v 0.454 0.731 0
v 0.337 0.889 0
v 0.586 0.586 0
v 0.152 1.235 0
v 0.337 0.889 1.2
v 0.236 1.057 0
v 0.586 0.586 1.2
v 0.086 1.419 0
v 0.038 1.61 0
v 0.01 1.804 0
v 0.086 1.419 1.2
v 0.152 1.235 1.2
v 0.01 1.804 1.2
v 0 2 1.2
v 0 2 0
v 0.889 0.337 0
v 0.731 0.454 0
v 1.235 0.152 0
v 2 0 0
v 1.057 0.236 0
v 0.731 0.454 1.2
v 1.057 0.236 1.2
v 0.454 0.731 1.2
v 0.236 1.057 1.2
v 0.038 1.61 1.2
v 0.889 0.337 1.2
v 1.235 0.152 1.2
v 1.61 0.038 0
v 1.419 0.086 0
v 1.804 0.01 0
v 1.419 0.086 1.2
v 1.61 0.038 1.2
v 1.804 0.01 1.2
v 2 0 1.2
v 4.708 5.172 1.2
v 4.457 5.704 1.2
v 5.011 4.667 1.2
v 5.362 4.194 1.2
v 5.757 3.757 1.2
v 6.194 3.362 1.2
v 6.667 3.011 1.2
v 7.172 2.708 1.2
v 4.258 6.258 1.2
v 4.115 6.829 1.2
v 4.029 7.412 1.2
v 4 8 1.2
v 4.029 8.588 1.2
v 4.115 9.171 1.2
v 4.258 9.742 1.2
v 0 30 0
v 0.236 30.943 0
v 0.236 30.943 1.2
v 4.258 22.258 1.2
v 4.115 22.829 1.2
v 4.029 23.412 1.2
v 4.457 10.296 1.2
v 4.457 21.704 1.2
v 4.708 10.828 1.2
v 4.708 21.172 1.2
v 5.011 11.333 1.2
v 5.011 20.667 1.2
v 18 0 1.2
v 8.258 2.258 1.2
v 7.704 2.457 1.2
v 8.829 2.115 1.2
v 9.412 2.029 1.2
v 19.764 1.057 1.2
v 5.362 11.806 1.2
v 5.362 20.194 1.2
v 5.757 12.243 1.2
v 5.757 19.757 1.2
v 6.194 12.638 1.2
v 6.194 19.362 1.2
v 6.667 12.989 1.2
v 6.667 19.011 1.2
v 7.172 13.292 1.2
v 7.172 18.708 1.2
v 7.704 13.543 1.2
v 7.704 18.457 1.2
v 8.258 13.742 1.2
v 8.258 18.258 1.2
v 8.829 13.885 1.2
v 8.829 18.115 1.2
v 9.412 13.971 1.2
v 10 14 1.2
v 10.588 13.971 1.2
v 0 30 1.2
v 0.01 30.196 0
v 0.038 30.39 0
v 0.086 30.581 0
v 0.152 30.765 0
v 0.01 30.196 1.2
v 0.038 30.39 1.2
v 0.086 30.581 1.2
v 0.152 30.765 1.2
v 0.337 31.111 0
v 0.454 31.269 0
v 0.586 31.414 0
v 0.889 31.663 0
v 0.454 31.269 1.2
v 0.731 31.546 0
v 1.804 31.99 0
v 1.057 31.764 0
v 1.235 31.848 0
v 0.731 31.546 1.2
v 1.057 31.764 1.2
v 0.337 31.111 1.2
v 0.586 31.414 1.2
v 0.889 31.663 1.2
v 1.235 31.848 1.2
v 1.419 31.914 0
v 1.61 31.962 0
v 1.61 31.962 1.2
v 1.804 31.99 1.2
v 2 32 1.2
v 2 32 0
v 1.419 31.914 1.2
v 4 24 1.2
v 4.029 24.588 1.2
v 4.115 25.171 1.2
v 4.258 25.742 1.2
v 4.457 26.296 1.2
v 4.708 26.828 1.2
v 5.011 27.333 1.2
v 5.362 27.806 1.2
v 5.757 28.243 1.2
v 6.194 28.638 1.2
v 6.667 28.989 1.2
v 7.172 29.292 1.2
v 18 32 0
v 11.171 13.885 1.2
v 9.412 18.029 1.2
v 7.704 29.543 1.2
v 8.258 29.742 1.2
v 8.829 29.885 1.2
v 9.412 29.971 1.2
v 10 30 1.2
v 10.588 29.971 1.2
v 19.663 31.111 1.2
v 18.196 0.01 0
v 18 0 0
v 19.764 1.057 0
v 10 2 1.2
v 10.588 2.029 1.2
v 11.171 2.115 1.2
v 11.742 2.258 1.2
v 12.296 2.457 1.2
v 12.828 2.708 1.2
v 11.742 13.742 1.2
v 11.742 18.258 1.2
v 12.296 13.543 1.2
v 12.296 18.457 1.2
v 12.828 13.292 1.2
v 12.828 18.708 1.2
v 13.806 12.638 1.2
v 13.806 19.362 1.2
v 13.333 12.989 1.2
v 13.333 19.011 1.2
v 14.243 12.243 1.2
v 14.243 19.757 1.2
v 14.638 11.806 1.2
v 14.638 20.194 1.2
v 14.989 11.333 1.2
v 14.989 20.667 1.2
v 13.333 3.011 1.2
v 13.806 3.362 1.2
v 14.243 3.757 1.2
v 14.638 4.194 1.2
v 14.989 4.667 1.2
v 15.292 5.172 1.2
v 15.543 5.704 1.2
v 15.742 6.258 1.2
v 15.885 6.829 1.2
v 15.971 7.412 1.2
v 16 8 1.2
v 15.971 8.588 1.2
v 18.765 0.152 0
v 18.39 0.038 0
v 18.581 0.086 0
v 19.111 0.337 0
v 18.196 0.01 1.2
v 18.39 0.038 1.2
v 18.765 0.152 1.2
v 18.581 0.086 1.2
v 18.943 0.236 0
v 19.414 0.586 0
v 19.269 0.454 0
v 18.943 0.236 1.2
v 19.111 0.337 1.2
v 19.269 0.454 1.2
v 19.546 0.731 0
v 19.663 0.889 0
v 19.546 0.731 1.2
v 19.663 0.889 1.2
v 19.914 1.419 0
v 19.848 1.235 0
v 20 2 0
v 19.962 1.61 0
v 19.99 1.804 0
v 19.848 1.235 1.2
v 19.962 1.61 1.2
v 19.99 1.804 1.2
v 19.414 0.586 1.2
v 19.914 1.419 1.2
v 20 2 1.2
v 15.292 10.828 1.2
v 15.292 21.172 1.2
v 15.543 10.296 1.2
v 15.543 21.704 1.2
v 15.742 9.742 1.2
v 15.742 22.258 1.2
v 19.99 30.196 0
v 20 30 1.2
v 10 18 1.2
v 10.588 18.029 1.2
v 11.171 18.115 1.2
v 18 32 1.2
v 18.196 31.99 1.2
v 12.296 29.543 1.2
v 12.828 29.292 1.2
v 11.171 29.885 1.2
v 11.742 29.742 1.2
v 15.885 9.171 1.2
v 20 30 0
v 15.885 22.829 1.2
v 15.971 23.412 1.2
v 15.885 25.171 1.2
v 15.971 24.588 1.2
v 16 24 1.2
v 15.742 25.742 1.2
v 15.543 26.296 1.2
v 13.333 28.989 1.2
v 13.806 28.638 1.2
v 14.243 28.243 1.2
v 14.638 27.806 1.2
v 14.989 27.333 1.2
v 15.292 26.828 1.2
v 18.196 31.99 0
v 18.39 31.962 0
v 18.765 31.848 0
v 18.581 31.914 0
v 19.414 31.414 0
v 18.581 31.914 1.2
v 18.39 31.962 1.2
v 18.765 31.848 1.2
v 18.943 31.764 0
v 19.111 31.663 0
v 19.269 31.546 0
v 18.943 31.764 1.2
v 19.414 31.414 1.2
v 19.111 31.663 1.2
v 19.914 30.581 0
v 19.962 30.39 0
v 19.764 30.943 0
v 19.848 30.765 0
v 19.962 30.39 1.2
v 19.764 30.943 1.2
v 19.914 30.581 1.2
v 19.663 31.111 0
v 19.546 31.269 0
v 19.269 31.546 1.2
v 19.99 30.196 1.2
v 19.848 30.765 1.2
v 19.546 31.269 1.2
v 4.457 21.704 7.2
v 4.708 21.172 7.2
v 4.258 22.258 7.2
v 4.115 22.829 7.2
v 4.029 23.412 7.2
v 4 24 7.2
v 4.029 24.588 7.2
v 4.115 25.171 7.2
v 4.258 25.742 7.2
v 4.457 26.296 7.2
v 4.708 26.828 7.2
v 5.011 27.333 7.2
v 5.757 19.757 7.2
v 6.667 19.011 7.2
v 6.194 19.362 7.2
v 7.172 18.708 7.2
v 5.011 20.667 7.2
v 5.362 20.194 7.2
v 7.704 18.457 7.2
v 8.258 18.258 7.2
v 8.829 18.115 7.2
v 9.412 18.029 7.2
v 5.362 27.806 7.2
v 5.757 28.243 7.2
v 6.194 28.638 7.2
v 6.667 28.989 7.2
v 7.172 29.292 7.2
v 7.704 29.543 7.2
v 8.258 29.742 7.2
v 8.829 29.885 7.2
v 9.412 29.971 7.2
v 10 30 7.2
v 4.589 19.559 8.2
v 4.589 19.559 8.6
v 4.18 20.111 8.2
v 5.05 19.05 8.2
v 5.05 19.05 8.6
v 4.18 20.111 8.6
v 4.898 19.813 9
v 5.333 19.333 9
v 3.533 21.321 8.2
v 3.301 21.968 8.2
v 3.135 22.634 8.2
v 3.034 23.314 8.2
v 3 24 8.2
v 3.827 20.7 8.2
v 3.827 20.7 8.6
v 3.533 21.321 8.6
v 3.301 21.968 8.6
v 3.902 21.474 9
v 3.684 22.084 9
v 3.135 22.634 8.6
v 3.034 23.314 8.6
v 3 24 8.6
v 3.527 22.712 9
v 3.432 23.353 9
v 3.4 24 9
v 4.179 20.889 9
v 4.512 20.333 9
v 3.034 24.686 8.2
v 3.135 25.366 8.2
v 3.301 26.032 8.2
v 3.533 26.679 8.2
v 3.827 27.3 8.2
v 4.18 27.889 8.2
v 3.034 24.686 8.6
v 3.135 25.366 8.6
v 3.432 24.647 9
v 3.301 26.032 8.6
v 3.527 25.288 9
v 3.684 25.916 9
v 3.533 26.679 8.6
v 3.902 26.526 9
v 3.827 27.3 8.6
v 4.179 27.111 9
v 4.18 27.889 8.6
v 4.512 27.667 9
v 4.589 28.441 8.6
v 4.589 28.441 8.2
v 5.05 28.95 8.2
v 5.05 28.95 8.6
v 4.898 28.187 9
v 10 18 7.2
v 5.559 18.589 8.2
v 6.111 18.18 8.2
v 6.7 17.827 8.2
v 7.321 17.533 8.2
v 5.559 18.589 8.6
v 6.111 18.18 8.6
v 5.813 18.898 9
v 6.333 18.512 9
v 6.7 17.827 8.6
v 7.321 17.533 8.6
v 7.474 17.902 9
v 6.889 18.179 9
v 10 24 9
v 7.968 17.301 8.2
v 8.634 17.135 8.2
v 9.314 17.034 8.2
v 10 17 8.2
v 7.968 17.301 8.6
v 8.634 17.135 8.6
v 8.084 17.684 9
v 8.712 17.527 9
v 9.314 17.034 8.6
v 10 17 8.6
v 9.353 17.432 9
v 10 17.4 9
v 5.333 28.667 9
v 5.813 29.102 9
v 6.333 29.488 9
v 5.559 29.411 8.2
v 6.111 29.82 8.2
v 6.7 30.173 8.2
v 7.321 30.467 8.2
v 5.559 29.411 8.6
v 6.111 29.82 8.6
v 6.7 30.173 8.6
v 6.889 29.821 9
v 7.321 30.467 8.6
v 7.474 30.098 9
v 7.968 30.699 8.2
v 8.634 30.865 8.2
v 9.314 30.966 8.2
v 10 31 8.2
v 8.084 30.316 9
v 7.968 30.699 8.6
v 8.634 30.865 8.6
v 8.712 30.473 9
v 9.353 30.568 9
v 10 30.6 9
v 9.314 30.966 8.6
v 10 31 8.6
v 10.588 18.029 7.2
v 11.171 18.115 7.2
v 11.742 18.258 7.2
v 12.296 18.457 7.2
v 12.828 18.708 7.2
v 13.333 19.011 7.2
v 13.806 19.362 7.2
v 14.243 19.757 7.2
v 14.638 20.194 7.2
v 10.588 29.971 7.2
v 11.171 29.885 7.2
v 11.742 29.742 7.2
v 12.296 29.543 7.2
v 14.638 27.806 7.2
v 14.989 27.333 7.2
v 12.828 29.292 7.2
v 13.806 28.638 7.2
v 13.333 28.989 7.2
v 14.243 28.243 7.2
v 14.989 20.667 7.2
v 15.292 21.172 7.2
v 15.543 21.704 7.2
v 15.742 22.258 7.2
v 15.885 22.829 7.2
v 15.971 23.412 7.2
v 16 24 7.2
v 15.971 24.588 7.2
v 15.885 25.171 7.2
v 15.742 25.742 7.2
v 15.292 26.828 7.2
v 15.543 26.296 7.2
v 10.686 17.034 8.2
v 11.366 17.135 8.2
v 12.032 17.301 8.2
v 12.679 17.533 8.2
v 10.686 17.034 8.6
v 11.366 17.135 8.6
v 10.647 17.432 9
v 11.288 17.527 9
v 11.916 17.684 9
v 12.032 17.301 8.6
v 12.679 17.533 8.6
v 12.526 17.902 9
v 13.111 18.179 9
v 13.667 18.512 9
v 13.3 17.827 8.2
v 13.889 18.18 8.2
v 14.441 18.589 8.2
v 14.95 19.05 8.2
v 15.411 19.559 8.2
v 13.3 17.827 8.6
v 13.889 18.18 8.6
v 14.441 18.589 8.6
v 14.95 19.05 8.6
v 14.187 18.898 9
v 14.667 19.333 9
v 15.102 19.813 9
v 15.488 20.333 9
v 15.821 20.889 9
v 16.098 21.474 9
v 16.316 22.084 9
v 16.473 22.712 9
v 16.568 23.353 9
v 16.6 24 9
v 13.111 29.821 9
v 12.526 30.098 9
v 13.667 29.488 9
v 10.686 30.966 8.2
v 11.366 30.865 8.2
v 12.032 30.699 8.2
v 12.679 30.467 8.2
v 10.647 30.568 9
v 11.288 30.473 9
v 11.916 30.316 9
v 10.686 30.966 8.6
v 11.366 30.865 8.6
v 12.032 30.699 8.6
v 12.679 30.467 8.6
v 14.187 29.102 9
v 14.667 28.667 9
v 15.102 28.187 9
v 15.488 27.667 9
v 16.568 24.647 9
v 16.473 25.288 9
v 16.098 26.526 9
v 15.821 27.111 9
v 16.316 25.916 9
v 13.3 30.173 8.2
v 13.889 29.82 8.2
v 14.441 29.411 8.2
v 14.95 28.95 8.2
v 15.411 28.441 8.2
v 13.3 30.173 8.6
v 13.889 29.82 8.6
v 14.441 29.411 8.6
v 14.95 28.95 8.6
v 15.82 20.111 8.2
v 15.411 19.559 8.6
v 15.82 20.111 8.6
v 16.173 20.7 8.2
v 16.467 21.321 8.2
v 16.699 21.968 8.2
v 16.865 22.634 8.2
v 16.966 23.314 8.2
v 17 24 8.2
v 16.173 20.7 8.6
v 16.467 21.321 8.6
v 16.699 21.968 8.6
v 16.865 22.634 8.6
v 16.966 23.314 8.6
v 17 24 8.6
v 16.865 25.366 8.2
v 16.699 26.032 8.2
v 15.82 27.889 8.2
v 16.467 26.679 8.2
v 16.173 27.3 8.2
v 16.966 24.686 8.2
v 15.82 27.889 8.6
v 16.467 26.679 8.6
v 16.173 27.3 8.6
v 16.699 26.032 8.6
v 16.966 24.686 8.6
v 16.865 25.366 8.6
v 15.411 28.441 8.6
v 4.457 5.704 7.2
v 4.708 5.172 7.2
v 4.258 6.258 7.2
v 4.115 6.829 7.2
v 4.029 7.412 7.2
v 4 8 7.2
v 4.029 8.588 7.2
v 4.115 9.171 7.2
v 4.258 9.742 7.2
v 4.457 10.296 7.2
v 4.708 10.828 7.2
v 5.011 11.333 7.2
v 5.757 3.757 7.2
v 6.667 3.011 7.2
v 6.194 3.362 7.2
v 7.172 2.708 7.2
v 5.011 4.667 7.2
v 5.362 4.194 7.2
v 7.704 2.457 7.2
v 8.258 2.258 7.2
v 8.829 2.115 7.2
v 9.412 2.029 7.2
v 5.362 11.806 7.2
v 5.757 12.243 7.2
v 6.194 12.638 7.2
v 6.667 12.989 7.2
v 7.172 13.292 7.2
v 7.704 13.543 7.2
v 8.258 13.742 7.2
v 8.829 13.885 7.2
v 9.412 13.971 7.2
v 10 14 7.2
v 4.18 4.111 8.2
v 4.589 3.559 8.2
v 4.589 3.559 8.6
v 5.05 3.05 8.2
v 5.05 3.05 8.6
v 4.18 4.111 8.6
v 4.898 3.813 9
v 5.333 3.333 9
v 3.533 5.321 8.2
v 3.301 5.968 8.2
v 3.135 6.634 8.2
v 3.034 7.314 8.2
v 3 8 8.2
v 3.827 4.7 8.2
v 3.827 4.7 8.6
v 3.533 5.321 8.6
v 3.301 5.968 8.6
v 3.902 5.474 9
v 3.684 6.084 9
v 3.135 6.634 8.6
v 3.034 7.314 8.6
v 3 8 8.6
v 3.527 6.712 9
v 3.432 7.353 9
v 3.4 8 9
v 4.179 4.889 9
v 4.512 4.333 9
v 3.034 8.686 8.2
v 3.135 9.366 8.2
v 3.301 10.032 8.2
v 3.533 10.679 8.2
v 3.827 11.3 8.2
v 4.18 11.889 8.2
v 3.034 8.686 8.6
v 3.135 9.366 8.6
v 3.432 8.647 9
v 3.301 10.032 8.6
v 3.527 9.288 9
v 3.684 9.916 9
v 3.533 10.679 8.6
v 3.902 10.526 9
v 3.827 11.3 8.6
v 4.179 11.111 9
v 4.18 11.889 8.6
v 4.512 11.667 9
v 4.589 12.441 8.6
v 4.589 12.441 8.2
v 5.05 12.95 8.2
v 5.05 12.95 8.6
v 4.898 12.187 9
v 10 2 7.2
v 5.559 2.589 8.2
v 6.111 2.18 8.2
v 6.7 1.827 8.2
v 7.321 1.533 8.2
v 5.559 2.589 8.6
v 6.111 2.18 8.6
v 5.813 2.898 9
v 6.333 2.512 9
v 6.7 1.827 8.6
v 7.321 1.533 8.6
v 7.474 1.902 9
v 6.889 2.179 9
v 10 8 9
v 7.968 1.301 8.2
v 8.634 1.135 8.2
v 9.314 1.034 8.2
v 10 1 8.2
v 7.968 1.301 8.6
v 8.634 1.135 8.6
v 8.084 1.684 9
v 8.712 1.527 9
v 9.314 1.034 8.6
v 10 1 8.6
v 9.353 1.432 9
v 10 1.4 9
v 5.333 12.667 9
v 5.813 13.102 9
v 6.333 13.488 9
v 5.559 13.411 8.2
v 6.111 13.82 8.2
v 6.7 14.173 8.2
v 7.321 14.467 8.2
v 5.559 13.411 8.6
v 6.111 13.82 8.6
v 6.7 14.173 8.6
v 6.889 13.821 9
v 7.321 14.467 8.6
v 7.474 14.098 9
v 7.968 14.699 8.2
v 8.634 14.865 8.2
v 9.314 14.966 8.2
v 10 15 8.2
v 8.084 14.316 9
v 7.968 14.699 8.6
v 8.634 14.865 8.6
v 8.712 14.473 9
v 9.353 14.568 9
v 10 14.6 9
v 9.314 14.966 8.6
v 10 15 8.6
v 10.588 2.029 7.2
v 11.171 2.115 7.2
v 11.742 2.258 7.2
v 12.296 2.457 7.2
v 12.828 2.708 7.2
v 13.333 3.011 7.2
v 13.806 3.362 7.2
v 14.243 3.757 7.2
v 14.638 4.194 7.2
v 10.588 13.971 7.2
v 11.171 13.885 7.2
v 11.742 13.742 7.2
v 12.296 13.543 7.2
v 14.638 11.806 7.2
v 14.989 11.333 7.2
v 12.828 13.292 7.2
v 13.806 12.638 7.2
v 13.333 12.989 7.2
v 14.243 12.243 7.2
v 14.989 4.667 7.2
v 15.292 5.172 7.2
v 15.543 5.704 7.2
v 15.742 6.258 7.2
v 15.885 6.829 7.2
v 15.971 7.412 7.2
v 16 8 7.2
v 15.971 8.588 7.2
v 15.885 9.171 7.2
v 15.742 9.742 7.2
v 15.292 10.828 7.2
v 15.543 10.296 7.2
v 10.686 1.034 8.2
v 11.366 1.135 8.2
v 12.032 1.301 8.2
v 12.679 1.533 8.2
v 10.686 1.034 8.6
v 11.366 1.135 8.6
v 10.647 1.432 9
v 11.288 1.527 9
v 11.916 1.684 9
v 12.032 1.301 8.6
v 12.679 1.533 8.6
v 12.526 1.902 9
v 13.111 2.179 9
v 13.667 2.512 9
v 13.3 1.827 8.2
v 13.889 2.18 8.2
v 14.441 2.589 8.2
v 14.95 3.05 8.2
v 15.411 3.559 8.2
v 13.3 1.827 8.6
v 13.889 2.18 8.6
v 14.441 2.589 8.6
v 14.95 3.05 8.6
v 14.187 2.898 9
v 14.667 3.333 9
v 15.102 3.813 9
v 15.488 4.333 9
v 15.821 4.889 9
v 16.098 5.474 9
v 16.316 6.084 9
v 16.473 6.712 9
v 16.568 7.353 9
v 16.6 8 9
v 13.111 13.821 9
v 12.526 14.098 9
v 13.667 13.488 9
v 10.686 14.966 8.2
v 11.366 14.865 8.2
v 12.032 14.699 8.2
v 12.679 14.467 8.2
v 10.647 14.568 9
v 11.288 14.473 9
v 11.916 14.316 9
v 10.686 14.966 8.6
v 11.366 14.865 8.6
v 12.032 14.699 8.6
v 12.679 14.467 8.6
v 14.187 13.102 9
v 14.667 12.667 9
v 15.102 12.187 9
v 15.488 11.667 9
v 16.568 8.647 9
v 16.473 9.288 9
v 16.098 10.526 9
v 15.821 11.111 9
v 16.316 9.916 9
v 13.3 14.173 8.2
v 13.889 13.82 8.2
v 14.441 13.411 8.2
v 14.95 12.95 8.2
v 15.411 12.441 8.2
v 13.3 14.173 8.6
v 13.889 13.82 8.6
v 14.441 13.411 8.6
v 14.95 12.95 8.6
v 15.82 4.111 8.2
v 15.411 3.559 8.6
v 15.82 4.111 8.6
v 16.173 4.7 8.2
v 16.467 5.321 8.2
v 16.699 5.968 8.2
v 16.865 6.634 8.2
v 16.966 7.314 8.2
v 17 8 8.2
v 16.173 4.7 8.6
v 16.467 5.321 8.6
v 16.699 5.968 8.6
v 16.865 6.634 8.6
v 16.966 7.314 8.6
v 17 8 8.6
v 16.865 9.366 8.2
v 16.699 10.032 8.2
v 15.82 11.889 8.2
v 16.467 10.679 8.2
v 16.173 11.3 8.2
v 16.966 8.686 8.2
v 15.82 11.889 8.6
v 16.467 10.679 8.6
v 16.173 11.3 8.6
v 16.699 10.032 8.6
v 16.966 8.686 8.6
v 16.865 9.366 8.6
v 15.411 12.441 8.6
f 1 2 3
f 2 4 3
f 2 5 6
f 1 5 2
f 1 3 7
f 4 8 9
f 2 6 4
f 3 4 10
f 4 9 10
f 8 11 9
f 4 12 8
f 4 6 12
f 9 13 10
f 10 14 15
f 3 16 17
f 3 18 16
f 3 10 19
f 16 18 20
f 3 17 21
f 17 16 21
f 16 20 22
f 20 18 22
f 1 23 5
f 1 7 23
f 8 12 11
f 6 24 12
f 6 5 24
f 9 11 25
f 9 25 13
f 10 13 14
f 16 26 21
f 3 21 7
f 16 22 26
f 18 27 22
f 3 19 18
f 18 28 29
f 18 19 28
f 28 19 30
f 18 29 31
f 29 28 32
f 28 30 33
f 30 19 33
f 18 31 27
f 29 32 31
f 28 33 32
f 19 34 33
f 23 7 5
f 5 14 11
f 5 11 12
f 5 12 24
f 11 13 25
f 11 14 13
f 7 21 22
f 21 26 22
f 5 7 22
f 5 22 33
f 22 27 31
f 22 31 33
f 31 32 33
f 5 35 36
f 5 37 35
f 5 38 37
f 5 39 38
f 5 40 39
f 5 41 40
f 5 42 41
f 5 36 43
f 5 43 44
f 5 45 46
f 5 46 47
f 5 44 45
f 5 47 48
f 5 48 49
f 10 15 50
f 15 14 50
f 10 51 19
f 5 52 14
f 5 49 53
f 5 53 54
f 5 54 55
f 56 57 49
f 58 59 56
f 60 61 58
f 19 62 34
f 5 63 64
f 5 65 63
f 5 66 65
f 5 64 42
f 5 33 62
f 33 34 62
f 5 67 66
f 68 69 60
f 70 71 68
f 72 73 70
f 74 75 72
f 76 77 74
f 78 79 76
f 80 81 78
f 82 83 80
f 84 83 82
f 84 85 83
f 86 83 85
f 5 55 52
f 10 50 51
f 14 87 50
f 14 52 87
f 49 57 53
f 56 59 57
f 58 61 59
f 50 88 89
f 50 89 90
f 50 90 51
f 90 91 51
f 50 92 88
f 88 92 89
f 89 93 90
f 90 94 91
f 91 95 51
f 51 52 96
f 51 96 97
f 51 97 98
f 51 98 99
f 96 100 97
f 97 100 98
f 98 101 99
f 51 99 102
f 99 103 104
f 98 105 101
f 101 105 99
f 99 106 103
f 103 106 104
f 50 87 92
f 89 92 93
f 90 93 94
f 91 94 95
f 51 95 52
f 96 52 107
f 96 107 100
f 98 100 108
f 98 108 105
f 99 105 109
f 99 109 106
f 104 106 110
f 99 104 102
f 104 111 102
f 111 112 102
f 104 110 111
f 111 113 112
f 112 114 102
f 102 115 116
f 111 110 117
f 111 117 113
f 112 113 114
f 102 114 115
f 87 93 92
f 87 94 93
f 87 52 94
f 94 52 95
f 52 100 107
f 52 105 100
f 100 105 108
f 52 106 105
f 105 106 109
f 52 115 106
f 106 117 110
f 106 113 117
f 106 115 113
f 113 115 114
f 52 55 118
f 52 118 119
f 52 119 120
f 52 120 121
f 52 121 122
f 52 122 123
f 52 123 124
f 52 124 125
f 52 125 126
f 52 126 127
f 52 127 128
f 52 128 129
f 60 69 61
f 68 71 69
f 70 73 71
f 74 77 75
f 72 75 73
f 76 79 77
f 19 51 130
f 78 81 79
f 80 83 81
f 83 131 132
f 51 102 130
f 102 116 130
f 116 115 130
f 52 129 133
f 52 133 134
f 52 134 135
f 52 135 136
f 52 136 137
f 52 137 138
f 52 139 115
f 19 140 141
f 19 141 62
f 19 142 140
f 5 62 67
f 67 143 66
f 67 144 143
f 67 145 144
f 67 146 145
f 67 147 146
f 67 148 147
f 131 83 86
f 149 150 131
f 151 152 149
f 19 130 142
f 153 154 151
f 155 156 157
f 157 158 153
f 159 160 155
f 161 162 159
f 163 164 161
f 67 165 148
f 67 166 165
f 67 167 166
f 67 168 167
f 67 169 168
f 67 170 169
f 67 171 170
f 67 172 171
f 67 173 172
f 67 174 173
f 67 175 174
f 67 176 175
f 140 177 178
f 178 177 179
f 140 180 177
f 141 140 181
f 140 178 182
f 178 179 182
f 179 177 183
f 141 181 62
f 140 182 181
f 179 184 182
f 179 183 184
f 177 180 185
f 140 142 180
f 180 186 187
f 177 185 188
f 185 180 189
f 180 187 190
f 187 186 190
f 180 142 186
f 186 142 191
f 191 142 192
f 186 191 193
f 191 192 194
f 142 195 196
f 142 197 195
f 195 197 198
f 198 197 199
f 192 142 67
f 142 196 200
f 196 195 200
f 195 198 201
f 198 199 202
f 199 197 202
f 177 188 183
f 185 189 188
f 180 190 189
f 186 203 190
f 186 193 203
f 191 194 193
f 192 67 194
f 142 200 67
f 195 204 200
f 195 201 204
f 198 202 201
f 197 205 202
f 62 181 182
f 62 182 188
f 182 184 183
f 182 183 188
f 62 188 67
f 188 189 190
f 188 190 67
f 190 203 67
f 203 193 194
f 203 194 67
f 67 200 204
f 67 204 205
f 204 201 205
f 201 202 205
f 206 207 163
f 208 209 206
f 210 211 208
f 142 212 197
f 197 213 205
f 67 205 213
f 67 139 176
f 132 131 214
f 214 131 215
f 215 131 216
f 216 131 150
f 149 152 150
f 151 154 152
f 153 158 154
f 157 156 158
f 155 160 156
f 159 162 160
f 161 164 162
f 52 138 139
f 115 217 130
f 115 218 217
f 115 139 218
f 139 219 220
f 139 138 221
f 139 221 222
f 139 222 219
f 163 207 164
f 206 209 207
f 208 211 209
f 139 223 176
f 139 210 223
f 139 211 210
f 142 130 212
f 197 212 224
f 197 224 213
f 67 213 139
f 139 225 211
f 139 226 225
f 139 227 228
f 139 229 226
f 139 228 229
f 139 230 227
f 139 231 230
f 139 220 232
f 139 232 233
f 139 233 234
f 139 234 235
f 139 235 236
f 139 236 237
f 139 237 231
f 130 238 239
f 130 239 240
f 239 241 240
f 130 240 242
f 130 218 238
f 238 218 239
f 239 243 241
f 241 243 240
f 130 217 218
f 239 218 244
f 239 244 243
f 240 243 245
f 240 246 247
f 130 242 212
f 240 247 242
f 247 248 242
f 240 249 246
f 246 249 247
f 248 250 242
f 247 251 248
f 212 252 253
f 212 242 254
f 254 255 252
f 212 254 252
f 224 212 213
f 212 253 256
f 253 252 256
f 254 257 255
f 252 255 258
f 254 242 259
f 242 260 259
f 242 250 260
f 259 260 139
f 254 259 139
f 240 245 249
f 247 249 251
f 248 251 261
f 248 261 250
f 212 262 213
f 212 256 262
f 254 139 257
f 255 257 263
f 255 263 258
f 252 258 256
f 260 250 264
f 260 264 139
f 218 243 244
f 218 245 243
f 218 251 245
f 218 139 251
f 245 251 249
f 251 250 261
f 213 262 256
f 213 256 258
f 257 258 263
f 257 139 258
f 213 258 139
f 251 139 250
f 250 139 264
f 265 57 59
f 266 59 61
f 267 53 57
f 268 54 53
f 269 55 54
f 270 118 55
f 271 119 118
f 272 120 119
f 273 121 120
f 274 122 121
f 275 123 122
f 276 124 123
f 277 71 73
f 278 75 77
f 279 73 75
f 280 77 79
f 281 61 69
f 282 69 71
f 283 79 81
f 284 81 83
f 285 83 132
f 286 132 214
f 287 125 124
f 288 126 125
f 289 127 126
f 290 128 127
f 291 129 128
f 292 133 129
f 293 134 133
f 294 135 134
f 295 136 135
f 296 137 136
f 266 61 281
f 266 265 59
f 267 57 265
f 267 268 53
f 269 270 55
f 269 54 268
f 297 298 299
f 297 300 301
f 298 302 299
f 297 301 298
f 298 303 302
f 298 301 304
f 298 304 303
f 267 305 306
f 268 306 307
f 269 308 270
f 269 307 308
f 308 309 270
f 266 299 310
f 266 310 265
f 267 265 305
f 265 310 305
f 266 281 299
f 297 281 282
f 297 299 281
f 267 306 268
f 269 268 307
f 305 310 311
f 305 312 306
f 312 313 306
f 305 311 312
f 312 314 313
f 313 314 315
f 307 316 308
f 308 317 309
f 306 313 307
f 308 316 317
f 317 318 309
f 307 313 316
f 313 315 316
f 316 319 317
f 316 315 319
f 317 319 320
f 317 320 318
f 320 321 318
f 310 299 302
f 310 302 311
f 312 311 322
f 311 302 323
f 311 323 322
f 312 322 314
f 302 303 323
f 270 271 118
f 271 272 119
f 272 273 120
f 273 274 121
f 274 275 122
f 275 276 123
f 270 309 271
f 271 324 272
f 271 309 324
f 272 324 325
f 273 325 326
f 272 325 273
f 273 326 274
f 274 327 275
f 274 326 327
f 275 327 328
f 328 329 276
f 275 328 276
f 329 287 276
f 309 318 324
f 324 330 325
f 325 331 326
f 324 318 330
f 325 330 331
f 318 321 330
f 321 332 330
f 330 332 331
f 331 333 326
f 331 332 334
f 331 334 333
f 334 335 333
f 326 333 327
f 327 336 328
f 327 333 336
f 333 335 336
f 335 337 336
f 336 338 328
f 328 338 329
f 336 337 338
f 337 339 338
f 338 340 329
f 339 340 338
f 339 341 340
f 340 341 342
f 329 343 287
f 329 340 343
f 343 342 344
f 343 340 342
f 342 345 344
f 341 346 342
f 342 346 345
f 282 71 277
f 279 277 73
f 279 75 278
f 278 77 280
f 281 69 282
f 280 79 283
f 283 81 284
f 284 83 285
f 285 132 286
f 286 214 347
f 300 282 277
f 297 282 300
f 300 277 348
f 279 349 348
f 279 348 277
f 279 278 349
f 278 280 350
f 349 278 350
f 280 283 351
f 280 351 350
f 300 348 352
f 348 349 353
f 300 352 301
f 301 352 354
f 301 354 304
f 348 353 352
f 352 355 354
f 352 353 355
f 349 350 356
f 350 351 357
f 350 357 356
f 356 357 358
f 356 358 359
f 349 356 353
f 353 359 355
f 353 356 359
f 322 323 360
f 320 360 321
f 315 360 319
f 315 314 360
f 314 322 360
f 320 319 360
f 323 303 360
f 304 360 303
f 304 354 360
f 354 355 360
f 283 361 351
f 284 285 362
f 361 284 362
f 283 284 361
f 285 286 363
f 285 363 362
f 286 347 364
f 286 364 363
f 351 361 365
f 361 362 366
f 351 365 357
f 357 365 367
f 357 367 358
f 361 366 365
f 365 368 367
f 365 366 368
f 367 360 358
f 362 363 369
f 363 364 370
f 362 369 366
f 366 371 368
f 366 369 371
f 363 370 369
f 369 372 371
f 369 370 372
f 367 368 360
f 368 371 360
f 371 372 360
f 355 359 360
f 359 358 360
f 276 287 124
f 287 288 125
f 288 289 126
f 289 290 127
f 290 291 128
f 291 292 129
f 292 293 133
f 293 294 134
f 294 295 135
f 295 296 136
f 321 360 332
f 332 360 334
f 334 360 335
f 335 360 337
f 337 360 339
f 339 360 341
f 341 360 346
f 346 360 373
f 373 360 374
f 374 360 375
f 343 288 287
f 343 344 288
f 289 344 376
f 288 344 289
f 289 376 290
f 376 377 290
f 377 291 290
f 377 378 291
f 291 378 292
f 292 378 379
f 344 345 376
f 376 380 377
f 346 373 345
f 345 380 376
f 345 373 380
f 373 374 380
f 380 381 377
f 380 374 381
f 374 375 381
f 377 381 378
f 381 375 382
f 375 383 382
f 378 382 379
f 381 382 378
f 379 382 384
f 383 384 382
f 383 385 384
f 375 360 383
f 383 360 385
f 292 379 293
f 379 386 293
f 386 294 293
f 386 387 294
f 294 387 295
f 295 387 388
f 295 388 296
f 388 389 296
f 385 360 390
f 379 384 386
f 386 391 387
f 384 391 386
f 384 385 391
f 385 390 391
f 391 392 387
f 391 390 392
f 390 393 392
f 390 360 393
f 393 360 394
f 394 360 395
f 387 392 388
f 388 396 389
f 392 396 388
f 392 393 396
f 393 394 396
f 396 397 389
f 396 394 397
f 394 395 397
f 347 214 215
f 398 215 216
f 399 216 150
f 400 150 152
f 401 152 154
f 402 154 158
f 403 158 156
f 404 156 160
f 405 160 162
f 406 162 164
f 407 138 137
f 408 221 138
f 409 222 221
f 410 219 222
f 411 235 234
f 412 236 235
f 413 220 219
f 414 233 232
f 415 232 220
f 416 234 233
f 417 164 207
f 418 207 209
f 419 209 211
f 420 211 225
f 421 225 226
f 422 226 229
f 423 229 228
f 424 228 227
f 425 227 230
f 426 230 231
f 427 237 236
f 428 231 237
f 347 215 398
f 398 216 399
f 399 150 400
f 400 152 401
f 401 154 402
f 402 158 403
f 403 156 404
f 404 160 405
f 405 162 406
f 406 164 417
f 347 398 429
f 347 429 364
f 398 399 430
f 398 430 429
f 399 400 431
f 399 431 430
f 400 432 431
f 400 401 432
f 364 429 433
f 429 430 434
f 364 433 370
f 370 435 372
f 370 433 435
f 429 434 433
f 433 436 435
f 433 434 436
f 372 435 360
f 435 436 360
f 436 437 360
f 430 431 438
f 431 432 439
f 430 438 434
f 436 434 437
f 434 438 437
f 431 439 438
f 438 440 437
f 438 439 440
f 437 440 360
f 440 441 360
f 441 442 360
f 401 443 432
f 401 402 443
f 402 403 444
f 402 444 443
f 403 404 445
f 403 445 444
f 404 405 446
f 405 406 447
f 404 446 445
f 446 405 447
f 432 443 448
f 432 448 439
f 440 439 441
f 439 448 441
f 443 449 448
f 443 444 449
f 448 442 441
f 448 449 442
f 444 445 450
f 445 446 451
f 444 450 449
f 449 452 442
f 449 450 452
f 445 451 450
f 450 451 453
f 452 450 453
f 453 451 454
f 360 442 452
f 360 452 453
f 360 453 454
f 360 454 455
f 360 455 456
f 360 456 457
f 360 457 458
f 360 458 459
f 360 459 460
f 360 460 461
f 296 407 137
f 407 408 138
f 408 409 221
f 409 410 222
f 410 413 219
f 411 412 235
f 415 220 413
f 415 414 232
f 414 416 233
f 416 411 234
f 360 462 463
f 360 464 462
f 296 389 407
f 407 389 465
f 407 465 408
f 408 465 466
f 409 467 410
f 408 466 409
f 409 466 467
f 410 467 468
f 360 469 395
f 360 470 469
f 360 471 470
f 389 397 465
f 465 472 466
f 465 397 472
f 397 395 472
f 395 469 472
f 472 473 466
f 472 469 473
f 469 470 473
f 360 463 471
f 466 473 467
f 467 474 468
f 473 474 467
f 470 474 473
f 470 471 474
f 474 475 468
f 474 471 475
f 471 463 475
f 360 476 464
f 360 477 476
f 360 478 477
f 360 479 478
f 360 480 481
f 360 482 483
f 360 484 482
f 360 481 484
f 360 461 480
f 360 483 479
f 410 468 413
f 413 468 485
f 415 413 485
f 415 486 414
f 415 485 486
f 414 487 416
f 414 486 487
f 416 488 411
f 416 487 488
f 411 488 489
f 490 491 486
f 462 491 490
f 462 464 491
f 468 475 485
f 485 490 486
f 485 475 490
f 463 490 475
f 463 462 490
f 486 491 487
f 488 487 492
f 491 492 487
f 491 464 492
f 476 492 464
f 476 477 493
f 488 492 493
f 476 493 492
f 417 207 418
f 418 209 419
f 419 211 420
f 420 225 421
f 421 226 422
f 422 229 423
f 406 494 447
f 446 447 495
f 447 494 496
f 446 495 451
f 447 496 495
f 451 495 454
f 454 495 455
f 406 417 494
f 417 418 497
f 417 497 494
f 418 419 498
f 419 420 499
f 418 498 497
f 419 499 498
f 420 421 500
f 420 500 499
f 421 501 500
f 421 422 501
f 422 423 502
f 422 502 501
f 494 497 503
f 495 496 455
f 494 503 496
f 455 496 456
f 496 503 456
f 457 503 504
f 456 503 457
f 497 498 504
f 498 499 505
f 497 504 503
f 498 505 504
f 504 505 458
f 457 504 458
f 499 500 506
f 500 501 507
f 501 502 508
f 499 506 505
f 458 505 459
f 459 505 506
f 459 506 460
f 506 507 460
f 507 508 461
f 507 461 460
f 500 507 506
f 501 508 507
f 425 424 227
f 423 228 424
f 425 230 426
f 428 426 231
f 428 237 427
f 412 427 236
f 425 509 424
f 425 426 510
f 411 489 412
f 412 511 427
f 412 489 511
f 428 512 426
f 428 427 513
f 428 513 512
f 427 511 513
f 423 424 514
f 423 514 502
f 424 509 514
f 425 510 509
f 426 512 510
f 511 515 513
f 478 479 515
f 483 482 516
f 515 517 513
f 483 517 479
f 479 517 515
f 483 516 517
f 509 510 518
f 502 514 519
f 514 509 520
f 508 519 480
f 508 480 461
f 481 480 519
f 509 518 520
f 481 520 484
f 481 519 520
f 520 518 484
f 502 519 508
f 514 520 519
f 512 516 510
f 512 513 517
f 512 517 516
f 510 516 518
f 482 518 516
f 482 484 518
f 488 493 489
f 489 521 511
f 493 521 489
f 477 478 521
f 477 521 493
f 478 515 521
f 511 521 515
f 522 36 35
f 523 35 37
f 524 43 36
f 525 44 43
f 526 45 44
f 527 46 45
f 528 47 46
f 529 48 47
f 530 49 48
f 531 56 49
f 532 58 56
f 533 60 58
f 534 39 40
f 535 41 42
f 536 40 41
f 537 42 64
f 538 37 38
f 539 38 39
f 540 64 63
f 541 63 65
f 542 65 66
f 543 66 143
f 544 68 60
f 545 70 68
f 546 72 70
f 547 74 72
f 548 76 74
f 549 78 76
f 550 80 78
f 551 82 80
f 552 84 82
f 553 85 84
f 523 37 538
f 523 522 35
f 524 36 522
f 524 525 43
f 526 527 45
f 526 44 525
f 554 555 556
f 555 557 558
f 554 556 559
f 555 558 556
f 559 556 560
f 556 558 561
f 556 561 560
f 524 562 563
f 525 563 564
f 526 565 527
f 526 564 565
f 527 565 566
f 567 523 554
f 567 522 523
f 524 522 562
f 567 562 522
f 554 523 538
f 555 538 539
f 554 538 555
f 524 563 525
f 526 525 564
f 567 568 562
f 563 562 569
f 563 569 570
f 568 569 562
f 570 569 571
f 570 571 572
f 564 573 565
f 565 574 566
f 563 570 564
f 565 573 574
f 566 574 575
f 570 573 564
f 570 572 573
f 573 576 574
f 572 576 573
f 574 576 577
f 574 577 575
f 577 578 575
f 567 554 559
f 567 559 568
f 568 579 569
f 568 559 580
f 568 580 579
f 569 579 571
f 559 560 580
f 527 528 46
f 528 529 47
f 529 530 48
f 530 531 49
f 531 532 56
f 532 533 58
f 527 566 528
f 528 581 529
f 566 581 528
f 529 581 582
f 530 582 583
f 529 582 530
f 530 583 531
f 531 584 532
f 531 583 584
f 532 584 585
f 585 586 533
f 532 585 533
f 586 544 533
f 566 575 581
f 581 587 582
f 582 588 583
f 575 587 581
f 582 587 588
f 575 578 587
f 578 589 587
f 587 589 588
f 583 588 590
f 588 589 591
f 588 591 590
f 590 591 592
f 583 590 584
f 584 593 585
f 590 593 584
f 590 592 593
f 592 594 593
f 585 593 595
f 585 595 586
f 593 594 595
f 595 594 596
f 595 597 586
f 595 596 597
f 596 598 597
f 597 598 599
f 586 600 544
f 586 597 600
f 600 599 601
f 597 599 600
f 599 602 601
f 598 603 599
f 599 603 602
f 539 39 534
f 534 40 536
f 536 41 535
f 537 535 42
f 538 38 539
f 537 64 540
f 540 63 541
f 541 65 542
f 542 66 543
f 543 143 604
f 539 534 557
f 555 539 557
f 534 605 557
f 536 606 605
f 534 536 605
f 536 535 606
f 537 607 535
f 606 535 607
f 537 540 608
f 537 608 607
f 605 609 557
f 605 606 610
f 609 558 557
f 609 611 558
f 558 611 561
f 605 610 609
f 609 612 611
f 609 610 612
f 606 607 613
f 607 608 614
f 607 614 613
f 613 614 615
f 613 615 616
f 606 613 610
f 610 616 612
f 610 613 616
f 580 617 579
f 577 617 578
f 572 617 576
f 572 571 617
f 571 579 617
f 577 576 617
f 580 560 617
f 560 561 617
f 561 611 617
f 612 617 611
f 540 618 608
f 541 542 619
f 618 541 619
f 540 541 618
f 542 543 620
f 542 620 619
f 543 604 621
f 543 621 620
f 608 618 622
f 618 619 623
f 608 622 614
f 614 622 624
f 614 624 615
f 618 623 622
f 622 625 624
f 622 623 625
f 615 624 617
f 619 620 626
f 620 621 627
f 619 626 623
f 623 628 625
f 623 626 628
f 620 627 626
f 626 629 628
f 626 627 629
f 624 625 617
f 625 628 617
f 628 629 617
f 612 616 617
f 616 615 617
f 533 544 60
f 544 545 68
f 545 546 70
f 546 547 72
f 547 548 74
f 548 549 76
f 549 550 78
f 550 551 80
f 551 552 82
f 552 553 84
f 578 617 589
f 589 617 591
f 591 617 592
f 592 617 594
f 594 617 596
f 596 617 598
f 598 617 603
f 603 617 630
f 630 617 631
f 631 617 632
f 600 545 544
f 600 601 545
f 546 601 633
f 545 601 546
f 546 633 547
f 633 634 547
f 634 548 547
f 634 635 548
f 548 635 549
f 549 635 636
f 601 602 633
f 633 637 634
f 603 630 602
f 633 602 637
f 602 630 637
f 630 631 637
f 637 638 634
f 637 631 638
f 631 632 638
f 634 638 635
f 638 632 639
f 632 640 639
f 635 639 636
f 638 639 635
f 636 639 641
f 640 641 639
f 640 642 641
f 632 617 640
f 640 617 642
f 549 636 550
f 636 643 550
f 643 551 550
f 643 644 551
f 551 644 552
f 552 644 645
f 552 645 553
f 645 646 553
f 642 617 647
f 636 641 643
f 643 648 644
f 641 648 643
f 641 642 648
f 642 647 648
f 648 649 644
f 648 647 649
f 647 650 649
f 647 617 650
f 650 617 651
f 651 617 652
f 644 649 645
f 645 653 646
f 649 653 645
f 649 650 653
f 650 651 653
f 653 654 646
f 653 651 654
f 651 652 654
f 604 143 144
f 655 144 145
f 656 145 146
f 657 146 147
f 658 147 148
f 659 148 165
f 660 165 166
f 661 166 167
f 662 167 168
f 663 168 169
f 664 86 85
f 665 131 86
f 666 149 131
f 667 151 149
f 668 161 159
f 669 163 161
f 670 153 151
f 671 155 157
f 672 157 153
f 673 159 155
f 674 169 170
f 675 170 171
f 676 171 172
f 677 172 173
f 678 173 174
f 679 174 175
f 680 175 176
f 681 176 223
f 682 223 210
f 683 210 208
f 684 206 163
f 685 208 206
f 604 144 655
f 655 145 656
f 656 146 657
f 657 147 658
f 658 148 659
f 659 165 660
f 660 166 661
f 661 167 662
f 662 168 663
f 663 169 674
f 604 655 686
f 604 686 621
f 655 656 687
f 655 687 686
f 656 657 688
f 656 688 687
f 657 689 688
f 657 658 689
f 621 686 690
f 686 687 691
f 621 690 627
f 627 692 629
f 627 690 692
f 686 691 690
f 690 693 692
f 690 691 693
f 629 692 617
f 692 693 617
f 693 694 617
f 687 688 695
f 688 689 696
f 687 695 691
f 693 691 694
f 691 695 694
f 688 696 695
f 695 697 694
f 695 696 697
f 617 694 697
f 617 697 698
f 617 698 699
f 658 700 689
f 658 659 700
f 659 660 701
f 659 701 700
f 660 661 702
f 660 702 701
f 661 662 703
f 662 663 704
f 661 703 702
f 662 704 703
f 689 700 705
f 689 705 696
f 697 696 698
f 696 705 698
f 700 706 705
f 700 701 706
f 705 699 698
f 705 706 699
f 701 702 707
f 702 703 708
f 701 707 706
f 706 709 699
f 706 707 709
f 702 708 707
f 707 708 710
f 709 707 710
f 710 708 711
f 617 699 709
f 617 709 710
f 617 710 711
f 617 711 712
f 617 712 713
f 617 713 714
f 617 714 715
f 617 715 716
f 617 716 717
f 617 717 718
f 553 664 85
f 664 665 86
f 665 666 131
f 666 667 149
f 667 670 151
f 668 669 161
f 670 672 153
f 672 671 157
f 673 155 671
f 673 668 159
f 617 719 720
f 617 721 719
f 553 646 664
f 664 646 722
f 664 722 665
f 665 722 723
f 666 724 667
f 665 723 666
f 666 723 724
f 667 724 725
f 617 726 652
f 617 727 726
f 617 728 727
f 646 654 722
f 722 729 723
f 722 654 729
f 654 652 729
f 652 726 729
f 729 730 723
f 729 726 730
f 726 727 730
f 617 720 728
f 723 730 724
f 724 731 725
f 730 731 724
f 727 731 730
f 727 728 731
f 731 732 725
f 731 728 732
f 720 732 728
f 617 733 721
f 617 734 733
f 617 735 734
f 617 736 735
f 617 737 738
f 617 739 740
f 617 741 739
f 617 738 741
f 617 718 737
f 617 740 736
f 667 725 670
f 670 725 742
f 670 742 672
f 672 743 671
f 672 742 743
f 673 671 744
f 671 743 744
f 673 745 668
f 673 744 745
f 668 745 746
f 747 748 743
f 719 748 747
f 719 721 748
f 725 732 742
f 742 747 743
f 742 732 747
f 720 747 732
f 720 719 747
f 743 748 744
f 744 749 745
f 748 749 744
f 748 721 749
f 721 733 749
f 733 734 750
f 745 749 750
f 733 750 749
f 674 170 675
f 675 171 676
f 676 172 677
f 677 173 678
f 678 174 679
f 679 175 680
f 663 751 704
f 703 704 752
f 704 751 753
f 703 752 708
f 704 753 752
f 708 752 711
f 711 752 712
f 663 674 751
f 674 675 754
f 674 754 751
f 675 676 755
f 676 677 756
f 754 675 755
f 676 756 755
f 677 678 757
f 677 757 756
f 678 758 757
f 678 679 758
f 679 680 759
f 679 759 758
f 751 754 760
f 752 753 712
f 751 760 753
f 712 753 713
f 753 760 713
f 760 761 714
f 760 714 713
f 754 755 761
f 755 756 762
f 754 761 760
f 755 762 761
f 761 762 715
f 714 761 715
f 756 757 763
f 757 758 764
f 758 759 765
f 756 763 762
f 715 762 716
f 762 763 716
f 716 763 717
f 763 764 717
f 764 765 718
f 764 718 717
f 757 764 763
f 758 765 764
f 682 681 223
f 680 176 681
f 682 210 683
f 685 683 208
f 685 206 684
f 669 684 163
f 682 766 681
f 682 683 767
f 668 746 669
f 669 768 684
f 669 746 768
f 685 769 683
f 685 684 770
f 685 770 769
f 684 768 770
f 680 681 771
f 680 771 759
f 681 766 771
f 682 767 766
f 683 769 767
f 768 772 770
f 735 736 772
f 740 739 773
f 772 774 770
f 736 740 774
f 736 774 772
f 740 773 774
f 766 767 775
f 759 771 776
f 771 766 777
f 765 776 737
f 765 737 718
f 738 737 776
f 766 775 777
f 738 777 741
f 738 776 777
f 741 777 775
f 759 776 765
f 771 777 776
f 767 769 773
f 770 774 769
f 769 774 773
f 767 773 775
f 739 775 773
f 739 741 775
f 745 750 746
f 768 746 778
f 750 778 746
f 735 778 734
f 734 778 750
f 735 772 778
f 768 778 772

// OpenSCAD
// v0.3 add-on, 2026-09-09: removable two-post cable guide. Units mm.
// Attach underneath to the tray with existing foam tape after powerless fit.
// Post radius is a design trial, not a verified wire bend-radius specification.
$fn=64;
plate_l=20.0; plate_w=32.0; plate_h=1.2; plate_r=2.0;
core_r=6.0; core_h=6.0; lip_r=7.0;
flare_h=1.0; rim_h=0.4; bevel_h=0.4;
module base() {
    hull() for(x=[plate_r,plate_l-plate_r]) for(y=[plate_r,plate_w-plate_r])
        translate([x,y,0]) cylinder(r=plate_r,h=plate_h);
}
module post() {
    rotate_extrude() polygon([[0,plate_h-0.01],[core_r,plate_h-0.01],
        [core_r,plate_h+core_h],[lip_r,plate_h+core_h+flare_h],
        [lip_r,plate_h+core_h+flare_h+rim_h],
        [lip_r-bevel_h,plate_h+core_h+flare_h+rim_h+bevel_h],
        [0,plate_h+core_h+flare_h+rim_h+bevel_h]]);
}
union() { base(); for(y=[8,24]) translate([10,y,0]) post(); }
